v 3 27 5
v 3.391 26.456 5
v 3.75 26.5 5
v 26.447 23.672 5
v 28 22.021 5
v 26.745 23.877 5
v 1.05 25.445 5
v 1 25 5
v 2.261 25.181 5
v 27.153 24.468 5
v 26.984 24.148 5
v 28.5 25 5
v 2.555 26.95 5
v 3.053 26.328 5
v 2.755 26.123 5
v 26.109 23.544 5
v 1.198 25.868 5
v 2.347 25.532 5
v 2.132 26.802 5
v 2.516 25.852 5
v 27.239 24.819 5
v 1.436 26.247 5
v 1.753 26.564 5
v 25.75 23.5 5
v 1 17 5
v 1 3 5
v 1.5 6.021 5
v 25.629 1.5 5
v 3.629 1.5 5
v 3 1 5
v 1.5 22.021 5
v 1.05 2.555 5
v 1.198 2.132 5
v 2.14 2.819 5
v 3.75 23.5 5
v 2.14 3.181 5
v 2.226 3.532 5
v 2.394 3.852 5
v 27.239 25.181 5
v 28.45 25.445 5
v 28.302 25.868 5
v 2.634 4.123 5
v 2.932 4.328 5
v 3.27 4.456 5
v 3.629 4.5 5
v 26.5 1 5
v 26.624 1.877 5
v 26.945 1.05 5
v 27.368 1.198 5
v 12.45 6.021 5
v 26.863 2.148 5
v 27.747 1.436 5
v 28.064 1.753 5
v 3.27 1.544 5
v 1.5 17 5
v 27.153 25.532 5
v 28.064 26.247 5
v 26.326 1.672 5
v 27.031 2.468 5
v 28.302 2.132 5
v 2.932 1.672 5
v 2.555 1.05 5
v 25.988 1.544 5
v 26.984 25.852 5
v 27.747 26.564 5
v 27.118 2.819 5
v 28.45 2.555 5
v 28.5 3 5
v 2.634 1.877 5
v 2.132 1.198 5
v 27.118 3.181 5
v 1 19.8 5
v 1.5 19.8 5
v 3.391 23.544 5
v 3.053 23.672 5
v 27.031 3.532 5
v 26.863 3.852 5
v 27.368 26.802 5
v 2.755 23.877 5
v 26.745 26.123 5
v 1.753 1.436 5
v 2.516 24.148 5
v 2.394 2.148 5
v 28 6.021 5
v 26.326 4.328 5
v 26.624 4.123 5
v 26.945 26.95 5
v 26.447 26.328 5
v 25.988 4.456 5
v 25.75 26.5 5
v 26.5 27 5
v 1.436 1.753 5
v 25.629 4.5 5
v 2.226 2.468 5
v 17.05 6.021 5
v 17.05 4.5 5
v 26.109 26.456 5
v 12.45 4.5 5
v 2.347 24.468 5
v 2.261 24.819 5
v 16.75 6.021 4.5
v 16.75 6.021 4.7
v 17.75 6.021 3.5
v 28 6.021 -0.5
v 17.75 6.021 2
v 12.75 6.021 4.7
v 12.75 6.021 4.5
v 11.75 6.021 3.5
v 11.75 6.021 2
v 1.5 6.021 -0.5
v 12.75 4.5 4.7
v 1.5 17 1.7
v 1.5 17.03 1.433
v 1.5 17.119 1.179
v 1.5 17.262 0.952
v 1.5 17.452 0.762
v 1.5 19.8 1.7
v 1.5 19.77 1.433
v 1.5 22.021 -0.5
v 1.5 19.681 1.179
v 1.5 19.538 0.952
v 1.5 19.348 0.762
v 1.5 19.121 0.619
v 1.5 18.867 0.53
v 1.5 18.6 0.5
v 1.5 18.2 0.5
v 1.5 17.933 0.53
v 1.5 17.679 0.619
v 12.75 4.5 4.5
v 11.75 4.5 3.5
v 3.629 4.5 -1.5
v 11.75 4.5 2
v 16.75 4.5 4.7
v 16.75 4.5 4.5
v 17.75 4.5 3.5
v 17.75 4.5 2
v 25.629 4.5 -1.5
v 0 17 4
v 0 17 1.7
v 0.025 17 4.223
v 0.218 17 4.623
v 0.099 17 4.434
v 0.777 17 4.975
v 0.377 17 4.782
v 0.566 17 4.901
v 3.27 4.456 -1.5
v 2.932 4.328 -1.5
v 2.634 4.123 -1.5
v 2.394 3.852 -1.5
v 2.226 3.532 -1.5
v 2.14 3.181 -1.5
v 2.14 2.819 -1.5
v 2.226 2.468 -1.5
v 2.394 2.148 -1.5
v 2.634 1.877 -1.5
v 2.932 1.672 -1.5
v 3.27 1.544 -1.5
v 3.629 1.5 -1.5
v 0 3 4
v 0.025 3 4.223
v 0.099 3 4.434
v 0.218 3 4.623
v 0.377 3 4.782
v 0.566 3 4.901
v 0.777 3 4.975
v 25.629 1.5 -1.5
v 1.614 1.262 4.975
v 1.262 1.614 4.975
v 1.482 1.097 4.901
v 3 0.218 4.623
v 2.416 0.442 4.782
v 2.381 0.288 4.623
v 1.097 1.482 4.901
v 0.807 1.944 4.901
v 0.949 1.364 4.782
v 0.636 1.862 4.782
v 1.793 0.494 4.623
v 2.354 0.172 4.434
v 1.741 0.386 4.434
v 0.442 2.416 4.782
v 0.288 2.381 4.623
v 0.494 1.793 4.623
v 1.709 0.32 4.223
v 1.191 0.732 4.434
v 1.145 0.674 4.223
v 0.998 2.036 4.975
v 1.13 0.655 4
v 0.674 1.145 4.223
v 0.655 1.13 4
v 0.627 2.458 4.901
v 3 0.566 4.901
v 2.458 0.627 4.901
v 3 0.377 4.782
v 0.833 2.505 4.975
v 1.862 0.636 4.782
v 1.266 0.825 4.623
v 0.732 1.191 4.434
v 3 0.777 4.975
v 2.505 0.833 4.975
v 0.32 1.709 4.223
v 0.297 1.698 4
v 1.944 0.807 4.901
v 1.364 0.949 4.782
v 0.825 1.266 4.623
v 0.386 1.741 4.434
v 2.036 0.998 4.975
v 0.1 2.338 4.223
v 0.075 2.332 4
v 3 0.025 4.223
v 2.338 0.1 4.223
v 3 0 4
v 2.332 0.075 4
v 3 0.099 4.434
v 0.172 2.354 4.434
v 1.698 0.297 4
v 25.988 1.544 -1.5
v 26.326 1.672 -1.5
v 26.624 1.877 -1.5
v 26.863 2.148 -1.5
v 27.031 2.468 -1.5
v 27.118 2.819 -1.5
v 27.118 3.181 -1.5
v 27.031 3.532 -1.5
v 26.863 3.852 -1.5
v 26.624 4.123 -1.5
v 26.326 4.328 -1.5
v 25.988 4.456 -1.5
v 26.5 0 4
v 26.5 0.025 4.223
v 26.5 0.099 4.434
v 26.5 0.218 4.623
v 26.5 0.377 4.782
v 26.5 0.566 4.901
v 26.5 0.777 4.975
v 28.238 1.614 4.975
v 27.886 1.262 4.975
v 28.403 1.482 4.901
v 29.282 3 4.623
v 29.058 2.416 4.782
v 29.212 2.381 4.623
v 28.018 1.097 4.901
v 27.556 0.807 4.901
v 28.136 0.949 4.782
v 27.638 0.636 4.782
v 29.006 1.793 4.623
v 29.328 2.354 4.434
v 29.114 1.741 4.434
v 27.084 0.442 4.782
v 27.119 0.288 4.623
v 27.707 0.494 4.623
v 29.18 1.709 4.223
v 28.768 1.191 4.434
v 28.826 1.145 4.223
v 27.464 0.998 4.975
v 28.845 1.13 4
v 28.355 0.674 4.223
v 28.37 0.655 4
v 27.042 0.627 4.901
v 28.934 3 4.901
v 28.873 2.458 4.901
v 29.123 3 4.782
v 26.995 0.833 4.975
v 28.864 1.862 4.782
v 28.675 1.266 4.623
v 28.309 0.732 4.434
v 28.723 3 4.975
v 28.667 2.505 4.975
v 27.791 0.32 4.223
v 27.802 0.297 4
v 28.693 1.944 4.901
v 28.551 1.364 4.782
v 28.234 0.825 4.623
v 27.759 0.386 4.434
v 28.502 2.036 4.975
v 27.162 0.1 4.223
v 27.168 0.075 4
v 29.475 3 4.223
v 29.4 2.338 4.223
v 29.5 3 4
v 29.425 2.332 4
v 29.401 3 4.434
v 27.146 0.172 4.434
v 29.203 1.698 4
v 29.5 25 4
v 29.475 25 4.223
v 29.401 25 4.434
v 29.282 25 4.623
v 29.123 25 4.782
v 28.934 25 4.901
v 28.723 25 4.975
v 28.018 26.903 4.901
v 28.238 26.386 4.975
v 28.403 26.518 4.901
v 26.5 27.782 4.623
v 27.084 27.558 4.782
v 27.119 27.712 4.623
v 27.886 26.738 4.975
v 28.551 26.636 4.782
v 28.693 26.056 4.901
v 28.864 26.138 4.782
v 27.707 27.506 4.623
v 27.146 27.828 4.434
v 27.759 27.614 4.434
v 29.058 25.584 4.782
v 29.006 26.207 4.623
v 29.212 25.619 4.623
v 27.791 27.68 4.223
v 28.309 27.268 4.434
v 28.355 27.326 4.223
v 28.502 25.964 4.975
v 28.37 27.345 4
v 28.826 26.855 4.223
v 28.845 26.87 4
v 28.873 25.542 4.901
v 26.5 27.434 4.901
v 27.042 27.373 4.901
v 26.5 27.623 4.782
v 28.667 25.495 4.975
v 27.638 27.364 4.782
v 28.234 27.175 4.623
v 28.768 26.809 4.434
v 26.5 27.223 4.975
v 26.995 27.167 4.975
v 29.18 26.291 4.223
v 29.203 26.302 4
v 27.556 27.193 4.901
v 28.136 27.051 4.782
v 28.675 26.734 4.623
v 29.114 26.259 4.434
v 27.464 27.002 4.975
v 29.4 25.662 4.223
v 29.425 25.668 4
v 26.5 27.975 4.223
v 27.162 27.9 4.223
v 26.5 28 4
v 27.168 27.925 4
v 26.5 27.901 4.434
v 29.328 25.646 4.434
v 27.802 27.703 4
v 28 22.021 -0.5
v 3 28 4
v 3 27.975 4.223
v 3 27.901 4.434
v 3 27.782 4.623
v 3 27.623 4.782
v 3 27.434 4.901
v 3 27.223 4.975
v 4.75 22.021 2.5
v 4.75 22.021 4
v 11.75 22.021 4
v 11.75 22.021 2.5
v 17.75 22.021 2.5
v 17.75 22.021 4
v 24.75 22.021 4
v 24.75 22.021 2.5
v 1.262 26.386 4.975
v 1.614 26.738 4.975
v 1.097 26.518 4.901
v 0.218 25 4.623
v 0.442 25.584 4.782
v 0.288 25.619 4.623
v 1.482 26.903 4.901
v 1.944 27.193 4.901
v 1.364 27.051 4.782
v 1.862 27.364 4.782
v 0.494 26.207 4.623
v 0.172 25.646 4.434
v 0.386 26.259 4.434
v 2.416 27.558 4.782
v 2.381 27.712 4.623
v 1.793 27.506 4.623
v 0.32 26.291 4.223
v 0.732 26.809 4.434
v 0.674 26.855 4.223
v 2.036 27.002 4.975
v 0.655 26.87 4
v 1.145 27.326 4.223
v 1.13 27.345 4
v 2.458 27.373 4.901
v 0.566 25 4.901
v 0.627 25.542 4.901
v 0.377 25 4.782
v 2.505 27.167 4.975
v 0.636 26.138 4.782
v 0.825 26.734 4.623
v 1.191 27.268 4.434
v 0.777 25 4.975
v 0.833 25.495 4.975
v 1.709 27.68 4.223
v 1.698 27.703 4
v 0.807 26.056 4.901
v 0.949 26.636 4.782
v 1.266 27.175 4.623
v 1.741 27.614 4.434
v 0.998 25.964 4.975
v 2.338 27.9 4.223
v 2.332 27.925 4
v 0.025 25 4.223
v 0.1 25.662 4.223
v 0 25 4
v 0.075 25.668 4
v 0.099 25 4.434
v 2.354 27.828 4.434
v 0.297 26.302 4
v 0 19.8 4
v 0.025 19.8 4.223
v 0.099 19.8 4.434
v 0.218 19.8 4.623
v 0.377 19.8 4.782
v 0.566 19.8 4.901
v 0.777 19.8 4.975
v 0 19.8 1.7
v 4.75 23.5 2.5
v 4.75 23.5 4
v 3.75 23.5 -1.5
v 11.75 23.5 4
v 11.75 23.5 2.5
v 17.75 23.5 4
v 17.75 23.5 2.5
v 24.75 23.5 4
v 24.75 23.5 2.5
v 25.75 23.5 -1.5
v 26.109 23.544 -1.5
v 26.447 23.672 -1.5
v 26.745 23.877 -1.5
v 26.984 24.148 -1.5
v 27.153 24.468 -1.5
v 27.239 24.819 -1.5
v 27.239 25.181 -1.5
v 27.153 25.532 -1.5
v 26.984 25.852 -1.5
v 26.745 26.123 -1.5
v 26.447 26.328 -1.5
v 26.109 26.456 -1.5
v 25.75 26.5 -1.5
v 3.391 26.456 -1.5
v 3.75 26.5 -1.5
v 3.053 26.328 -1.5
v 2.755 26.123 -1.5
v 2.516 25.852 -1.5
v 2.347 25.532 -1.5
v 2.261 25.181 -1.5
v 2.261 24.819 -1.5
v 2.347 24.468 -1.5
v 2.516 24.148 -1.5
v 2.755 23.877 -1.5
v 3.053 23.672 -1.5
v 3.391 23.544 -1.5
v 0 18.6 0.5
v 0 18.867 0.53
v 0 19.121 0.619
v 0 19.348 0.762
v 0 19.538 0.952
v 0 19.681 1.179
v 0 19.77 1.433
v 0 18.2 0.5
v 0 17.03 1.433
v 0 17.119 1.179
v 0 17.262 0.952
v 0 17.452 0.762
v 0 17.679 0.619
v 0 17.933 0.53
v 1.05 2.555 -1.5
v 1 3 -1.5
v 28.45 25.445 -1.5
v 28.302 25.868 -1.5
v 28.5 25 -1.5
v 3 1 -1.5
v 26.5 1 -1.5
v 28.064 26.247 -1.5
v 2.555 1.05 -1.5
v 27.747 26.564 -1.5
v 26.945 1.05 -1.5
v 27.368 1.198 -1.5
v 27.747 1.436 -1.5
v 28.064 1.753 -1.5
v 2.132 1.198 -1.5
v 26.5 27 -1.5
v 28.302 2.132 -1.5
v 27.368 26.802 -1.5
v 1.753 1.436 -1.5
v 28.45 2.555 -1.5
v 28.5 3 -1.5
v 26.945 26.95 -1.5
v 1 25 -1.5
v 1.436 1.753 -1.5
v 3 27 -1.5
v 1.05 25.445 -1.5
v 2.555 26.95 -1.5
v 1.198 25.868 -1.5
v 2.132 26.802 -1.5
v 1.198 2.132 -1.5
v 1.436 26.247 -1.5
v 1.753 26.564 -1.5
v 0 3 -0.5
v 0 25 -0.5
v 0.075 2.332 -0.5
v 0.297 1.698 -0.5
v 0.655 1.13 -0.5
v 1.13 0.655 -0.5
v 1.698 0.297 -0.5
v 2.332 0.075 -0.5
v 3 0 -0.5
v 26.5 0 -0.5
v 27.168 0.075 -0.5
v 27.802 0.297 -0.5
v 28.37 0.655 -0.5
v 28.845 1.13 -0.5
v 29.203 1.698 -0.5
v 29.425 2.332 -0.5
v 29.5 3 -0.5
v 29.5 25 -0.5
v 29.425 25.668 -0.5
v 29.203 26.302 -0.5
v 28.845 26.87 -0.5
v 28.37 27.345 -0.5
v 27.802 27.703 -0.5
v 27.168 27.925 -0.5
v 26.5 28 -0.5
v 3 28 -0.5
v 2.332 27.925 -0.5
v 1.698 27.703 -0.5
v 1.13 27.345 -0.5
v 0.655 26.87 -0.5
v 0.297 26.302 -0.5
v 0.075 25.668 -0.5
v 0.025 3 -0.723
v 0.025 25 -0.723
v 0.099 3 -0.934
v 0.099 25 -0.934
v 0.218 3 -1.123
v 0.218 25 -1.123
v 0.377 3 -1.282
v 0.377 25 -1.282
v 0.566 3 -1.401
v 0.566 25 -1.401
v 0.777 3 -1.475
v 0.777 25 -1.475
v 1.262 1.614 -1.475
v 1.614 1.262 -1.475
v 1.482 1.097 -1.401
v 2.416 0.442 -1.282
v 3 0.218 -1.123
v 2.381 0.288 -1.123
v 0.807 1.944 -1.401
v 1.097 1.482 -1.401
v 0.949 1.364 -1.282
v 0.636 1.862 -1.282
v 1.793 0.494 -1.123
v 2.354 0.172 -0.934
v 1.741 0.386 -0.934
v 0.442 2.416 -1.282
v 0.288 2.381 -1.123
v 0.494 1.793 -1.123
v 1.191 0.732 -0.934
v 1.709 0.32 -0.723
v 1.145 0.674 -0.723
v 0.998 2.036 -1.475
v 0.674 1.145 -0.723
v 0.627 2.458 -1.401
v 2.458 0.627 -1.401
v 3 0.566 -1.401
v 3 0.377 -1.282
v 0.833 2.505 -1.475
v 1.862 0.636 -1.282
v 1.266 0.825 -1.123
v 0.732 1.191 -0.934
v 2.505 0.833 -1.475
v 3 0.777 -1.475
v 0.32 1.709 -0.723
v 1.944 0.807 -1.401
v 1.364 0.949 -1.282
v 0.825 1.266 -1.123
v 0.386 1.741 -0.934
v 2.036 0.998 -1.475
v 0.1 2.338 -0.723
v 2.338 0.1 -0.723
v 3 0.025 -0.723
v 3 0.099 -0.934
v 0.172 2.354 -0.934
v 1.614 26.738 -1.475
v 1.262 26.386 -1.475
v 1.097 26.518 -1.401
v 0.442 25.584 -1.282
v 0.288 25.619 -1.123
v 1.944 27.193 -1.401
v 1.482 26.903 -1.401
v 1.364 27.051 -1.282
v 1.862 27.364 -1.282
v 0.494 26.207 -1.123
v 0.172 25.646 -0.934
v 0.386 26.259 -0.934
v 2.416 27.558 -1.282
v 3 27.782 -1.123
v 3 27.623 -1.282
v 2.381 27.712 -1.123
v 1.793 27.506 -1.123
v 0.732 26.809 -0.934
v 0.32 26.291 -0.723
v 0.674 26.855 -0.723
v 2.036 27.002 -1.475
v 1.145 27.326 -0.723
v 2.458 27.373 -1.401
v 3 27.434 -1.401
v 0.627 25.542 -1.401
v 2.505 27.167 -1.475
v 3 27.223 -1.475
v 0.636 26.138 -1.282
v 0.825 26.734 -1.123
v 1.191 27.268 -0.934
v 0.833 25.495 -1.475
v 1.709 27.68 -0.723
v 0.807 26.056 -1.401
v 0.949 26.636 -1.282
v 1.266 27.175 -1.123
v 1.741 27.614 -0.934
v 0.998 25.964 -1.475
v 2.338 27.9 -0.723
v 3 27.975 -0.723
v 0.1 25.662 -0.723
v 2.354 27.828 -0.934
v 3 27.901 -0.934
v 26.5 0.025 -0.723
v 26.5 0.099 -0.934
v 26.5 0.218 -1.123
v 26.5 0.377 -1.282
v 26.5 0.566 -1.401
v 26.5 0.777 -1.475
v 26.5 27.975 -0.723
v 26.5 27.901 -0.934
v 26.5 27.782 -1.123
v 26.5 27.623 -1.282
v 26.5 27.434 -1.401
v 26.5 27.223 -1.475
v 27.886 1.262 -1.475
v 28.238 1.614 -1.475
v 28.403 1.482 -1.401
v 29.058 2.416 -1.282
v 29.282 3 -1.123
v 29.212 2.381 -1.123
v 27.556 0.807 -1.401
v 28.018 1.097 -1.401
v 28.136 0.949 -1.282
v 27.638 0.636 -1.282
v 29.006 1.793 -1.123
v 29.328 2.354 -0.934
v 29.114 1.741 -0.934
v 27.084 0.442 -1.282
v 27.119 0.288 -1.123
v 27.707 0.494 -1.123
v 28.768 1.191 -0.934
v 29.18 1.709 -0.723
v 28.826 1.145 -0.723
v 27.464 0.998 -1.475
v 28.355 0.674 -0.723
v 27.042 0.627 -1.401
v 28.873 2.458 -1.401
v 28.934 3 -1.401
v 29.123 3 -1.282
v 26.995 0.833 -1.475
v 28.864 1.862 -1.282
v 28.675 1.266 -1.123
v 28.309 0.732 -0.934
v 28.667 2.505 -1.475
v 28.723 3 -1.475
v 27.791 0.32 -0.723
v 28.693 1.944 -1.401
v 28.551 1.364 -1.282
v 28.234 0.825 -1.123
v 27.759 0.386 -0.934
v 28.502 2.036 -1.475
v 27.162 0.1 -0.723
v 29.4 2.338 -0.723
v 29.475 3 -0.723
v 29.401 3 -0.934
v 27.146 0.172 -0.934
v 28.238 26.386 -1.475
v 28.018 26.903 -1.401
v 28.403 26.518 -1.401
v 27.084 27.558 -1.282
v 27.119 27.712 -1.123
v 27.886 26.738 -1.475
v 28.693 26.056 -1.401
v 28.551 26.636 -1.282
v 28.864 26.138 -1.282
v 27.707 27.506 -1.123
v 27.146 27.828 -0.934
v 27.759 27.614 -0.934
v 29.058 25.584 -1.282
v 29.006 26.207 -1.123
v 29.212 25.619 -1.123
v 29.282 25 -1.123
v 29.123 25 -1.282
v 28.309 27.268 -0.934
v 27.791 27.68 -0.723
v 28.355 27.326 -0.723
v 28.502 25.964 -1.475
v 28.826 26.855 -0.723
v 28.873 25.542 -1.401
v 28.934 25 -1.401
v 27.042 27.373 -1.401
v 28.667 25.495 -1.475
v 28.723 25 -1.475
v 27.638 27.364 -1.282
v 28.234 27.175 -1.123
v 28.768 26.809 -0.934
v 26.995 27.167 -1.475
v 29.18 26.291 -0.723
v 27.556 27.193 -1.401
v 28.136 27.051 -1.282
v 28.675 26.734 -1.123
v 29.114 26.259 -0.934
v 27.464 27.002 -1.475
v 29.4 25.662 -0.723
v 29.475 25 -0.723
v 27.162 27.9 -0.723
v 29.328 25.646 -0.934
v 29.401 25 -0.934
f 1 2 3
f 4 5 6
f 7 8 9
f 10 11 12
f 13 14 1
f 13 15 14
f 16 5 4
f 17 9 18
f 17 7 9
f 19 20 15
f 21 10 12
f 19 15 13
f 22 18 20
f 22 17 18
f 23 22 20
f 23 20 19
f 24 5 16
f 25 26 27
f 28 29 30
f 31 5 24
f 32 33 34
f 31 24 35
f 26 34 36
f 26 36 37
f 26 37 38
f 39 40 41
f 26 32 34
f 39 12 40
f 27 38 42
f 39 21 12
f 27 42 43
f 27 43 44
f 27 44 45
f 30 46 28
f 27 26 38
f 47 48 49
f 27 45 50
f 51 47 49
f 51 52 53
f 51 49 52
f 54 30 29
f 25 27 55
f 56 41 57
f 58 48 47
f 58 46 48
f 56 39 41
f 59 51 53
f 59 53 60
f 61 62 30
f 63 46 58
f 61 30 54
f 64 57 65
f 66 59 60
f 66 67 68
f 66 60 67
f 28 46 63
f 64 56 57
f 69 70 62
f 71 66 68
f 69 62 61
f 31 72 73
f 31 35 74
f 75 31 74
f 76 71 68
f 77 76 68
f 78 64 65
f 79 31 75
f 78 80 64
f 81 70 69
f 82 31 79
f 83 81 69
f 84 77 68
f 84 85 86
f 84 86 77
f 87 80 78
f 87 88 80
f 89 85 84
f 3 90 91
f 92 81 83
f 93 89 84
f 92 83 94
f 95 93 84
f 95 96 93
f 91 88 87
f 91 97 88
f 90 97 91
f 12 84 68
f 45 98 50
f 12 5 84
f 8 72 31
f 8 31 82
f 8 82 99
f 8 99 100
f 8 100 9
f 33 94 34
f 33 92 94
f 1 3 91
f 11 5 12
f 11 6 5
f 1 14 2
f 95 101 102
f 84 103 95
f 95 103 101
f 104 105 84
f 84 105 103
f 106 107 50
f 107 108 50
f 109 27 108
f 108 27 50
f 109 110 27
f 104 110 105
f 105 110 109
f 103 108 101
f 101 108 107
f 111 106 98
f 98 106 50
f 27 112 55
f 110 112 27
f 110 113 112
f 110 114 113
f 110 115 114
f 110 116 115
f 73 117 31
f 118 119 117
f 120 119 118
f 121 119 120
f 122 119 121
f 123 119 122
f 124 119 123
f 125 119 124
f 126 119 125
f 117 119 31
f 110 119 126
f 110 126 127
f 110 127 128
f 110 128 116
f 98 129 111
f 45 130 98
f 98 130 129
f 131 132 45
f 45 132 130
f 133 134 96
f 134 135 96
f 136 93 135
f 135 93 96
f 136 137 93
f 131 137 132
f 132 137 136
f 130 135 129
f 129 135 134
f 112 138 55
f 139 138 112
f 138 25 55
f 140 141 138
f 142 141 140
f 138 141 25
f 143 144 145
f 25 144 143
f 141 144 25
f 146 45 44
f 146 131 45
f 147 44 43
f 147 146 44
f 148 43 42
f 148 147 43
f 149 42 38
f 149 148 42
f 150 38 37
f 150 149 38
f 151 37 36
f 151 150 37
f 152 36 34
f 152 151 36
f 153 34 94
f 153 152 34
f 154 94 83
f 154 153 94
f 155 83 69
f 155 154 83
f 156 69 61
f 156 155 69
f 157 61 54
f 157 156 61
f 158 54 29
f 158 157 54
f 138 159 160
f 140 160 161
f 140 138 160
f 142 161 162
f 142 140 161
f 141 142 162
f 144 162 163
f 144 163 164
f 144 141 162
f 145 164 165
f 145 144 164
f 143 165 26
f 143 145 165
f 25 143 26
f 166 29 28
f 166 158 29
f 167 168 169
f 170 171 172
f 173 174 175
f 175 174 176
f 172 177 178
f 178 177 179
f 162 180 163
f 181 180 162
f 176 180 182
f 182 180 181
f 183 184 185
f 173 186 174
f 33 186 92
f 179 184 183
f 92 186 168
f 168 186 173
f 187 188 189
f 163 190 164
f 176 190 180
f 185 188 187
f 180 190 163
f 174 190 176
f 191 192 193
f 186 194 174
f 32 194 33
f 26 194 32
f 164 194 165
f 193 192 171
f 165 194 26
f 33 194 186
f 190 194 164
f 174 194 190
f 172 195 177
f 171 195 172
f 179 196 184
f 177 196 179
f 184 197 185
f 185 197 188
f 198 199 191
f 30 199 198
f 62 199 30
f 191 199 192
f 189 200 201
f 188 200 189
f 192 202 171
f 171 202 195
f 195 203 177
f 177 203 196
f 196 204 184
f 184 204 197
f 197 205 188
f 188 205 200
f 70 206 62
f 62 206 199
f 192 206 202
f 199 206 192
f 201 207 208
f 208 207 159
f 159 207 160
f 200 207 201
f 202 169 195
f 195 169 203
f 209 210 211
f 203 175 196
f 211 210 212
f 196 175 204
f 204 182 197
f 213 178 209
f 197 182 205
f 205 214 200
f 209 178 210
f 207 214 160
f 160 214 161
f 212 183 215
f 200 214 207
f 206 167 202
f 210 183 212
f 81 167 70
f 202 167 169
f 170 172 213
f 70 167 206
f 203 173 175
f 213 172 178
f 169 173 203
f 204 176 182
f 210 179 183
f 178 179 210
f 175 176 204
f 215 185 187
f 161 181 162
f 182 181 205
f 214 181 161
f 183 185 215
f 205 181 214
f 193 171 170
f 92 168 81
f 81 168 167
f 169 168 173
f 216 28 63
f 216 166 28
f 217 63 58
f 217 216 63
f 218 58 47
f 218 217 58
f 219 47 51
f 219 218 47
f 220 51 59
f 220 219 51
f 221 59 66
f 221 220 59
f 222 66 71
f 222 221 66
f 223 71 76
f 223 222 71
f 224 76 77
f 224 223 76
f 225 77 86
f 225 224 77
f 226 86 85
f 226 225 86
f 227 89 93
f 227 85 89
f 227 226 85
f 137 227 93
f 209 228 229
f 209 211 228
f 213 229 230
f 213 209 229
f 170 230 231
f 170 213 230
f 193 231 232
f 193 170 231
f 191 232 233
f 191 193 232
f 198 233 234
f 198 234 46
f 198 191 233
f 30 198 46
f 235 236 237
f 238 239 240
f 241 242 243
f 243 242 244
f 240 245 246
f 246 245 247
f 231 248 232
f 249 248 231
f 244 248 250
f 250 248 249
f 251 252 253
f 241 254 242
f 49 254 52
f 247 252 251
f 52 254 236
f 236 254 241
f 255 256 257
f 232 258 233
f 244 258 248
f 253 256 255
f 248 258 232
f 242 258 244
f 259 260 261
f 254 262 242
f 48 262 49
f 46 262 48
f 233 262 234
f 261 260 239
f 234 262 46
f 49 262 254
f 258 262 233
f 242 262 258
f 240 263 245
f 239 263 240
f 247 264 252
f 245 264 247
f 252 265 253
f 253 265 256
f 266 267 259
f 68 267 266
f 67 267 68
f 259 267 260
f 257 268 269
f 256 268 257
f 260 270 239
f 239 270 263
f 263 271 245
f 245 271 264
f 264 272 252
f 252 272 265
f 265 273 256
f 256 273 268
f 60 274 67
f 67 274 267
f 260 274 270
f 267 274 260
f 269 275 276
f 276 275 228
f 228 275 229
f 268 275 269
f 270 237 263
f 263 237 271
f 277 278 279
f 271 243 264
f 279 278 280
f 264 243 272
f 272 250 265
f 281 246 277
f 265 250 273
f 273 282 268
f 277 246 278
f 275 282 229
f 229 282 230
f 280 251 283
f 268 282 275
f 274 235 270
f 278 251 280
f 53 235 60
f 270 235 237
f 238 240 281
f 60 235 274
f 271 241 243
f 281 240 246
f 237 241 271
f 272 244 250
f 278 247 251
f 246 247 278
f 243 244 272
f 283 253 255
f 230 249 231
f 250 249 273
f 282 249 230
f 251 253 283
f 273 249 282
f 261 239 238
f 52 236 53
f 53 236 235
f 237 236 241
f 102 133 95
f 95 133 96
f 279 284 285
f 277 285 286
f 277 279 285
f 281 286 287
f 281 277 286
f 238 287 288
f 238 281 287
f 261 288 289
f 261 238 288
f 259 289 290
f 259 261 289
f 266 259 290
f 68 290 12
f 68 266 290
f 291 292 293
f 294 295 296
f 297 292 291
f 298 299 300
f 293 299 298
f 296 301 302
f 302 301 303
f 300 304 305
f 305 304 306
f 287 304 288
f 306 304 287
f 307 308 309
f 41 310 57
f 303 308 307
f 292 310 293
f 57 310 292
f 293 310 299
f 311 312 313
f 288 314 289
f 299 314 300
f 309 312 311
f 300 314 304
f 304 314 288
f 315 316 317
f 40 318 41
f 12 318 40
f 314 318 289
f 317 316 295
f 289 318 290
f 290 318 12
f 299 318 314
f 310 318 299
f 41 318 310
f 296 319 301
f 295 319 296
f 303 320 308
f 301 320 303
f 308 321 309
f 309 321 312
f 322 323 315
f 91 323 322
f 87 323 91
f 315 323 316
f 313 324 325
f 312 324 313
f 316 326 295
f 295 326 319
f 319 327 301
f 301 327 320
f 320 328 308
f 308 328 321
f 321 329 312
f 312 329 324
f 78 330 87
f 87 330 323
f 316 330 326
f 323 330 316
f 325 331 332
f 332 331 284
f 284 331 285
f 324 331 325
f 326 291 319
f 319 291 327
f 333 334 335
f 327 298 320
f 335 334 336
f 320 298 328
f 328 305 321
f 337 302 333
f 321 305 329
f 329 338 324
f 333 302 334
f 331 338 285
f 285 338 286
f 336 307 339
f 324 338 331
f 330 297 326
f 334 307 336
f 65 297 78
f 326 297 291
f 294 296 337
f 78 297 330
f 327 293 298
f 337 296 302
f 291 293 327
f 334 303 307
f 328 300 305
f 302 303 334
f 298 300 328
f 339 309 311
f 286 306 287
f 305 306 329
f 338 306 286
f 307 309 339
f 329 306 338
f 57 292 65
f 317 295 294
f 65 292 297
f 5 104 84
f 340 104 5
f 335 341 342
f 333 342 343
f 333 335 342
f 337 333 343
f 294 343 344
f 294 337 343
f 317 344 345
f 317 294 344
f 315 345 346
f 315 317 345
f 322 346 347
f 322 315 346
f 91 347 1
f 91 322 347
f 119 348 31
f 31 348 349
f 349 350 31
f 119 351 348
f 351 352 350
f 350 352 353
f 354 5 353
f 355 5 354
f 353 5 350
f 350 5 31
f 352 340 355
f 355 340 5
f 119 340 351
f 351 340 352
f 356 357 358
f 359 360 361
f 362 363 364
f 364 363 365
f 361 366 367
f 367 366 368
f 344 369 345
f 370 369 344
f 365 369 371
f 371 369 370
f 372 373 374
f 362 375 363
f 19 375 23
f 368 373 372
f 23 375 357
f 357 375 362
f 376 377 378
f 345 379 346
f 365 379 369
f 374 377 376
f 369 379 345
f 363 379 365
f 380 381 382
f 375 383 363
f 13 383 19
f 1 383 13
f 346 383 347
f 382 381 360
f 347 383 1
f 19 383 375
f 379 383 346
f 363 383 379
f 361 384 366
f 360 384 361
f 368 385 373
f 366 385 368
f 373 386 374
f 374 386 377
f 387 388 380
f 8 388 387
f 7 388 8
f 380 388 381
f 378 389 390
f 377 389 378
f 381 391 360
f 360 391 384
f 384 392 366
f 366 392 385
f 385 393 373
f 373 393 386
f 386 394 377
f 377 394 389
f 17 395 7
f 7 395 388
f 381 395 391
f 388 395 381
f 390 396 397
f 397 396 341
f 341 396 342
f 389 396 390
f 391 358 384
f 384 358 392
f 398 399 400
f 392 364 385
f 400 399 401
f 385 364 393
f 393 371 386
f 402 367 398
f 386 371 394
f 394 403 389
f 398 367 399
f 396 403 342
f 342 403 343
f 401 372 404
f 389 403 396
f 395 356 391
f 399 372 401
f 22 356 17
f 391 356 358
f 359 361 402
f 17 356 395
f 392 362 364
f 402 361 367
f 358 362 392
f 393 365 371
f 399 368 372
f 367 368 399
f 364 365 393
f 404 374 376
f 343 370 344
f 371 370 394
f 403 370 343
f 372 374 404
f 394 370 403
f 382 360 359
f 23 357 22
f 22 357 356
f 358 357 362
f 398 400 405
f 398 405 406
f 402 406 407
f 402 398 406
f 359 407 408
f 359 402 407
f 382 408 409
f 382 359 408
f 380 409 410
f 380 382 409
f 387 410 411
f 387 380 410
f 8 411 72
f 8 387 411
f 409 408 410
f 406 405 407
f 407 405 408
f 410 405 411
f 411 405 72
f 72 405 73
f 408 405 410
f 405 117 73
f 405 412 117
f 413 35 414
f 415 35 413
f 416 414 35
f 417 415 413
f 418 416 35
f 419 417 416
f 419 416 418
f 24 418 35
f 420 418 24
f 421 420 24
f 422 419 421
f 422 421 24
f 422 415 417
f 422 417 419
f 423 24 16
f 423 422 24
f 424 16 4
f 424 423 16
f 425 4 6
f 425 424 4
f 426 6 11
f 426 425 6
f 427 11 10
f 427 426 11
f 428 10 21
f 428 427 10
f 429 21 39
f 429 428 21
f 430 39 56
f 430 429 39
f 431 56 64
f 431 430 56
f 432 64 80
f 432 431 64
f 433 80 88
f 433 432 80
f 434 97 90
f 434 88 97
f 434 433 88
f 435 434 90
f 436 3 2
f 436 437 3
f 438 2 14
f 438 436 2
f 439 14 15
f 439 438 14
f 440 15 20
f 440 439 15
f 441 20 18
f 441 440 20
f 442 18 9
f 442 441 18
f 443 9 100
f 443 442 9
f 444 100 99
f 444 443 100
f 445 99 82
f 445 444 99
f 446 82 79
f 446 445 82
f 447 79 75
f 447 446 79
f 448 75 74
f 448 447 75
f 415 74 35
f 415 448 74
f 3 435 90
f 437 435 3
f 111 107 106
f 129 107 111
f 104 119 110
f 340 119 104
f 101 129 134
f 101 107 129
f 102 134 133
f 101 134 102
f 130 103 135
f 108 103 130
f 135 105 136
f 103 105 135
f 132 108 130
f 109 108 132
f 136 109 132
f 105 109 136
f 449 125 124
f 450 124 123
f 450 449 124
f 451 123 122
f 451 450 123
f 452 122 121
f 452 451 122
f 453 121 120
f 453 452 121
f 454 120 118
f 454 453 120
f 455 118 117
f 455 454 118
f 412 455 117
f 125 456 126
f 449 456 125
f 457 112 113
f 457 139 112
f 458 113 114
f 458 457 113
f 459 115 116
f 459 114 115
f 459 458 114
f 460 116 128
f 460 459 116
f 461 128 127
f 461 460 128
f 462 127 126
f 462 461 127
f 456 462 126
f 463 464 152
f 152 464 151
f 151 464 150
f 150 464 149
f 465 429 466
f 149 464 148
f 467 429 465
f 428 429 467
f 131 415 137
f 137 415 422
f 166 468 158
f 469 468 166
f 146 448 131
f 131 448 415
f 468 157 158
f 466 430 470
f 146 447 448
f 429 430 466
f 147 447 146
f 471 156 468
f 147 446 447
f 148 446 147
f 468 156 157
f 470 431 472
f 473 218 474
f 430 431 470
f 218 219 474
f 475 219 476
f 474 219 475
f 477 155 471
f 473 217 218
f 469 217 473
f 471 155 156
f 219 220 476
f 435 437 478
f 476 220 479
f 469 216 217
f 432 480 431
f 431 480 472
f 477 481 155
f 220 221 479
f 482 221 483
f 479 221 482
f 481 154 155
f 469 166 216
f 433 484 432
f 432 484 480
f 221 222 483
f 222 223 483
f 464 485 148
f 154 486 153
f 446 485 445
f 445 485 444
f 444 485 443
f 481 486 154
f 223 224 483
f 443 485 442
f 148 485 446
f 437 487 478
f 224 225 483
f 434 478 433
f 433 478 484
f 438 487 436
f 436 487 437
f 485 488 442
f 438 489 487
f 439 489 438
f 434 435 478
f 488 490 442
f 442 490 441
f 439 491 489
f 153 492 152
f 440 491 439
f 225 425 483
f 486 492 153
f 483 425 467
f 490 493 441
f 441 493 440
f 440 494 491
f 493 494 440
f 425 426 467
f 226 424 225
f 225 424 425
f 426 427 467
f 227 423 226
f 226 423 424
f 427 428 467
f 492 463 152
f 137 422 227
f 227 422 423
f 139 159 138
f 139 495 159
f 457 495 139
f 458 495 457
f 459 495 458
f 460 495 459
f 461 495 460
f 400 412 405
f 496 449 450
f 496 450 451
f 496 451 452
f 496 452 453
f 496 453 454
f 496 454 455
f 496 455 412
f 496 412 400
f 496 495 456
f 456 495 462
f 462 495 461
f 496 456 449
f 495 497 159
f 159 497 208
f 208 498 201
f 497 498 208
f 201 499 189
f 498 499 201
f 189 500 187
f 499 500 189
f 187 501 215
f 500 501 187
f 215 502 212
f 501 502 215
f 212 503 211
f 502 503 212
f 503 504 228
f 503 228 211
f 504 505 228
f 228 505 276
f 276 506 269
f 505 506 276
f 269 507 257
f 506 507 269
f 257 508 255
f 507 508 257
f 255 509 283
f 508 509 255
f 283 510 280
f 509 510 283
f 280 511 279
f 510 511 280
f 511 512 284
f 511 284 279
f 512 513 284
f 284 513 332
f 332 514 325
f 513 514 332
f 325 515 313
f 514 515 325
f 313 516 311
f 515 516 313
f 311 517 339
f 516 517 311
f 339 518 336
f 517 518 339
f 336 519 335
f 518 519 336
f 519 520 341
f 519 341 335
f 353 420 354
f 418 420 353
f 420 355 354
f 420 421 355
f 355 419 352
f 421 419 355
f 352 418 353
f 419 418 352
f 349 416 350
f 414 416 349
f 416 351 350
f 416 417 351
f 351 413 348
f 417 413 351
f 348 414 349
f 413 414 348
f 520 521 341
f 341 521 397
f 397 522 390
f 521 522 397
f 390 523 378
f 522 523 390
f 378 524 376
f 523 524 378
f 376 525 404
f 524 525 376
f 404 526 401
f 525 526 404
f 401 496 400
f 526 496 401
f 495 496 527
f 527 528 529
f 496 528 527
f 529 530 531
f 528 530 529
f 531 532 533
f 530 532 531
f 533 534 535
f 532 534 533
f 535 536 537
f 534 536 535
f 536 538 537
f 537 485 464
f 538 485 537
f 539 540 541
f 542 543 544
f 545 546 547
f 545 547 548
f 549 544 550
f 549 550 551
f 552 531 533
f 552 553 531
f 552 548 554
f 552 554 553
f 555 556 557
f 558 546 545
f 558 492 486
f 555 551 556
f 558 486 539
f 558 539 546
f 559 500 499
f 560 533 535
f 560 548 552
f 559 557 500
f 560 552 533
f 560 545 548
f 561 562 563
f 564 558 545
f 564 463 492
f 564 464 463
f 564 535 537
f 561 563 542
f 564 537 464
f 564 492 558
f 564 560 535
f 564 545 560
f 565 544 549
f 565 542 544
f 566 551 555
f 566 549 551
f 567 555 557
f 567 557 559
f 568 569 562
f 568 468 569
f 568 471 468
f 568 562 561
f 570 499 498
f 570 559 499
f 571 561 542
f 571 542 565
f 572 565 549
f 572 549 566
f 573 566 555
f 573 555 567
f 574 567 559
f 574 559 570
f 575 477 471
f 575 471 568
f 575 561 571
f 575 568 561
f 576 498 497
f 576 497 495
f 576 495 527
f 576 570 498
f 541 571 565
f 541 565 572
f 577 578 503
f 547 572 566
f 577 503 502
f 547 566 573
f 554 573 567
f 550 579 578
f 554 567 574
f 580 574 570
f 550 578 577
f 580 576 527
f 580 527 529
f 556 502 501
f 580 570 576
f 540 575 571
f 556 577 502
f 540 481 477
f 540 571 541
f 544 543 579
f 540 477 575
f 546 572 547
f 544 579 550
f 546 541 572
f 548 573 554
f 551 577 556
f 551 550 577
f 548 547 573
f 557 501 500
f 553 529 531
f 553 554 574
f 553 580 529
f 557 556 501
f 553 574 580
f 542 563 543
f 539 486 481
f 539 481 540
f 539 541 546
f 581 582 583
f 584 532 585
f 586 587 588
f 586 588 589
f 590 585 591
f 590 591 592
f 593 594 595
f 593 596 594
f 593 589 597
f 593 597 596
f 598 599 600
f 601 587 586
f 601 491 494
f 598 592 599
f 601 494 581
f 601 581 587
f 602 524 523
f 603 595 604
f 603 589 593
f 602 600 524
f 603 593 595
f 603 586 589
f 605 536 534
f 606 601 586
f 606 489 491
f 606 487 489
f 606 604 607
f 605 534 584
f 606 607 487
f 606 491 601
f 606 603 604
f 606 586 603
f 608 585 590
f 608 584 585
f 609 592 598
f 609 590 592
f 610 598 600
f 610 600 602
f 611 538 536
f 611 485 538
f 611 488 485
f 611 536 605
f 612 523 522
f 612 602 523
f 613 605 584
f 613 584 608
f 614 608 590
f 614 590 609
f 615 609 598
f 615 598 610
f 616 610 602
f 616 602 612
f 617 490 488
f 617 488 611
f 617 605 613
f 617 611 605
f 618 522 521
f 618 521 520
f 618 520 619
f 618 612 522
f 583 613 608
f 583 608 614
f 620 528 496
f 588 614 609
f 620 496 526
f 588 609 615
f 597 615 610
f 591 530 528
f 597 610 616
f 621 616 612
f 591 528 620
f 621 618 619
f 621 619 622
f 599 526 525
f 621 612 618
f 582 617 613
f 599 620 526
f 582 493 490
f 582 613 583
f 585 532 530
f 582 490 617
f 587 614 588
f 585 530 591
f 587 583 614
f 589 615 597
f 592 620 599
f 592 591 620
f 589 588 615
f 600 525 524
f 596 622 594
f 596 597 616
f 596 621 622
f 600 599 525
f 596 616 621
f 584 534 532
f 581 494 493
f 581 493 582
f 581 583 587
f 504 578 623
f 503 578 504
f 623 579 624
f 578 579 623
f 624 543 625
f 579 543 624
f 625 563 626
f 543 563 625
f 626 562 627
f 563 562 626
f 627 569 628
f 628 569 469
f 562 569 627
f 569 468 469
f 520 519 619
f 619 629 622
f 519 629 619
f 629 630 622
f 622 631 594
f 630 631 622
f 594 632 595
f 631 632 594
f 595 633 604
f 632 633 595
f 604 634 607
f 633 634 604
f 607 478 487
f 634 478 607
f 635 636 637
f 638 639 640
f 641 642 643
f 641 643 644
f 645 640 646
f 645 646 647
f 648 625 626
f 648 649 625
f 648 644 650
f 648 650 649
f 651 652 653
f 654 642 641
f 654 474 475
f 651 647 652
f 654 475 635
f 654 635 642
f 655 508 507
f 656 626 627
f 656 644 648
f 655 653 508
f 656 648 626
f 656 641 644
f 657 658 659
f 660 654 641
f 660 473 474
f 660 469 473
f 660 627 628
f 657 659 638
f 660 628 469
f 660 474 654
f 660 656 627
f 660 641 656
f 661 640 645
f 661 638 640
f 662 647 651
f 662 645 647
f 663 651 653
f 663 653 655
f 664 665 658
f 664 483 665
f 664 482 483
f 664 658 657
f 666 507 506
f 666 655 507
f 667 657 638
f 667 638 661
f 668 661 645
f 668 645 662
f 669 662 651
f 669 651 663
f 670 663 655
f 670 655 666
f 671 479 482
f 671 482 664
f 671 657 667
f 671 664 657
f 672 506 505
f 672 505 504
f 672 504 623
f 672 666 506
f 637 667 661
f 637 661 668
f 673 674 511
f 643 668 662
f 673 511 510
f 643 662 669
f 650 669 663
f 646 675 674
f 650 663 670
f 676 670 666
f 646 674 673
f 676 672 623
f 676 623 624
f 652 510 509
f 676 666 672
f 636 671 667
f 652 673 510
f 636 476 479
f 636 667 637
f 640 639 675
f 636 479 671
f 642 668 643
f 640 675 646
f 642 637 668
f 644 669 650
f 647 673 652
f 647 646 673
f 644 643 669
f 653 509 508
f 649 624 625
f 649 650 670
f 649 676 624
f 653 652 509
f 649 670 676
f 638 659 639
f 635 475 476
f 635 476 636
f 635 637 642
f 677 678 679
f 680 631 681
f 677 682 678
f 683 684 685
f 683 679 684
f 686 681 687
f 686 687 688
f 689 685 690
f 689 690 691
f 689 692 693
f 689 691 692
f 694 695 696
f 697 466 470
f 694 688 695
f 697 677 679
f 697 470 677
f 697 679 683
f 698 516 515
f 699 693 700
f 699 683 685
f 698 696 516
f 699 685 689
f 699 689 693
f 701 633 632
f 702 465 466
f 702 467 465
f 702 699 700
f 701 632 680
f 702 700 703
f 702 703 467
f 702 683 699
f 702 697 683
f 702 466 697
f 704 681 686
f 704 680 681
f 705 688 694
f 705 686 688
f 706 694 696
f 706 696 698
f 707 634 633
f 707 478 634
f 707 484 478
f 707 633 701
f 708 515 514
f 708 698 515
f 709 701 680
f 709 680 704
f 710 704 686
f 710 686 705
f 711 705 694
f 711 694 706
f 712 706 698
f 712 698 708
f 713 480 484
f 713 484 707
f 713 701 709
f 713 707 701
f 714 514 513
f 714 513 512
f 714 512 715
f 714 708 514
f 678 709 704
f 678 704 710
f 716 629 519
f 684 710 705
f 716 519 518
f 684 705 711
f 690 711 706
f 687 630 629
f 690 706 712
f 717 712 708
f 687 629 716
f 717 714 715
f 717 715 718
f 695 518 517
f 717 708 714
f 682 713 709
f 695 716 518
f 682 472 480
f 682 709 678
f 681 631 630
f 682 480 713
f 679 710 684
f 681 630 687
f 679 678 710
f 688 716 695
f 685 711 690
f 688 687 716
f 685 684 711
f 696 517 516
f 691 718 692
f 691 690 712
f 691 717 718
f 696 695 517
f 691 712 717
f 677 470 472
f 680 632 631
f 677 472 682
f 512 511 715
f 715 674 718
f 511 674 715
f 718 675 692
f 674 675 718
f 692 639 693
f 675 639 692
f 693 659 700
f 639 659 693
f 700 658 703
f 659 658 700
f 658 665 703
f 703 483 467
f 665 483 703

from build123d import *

# Parameters (mm, degrees)
EXTRUDE007_START                     = 4.5
SKETCH007_W                          = 4
SKETCH007_H                          = 3
EXTRUDE007_DEPTH                     = 0.5
EXTRUDE006_START                     = -4
SKETCH006_AS_DRAWN_W                 = 6
SKETCH006_AS_DRAWN_H                 = 1.5
EXTRUDE006_DEPTH                     = 4
EXTRUDE006_ONTO_SKETCH006_ROLL_ANGLE = 90
EXTRUDE005_DEPTH                     = 2
EXTRUDE003_START                     = -15
SKETCH003_AS_DRAWN_W                 = 7
SKETCH003_AS_DRAWN_H                 = 1.5
EXTRUDE003_DEPTH                     = 10
EXTRUDE003_ONTO_SKETCH003_ROLL_ANGLE = 90
EXTRUDE002_DEPTH                     = 6
EXTRUDE002_DEPTH_BACK                = 2
SKETCH_W                             = 26.5
SKETCH_H                             = 16
EXTRUDE001_DEPTH                     = 6
EXTRUDE001_DEPTH_BACK                = 0.5
EXTRUDE_DEPTH                        = 5
EXTRUDE_DEPTH_BACK                   = 1.5
FILLET_R                             = 1
CHAMFER_SIZE                         = 0.3


with BuildPart() as extrude007:
    # Sketch007 (on Cut) → Extrude007 (new body)
    with BuildSketch(Plane.XY.offset(EXTRUDE007_START)):
        with Locations((14.75, 5.419451)):
            Rectangle(SKETCH007_W, SKETCH007_H)
    extrude(amount=EXTRUDE007_DEPTH)


with BuildPart() as extrude006:
    # Sketch006 as drawn → Extrude006 (new)
    with BuildSketch(Plane.XY.offset(EXTRUDE006_START)):
        with Locations((14.75, 2.75)):
            Rectangle(SKETCH006_AS_DRAWN_W, SKETCH006_AS_DRAWN_H)
    extrude(amount=-EXTRUDE006_DEPTH)


with BuildPart() as extrude006_1:
    # Extrude006 onto Sketch006 roll: moved
    add(extrude006.part.rotate(Axis((0, 0, 0), (1, 0, 0)), EXTRUDE006_ONTO_SKETCH006_ROLL_ANGLE))


with BuildPart() as extrude006_2:
    # Extrude006 onto Sketch006 placement: moved
    add(extrude006_1.part)


with BuildPart() as extrude005:
    # Sketch005 → Extrude005 (new body)
    with BuildSketch(Plane.YZ):
        with BuildLine():
            Line((17, 5), (19.8, 5))
            Line((19.8, 5), (19.8, 1.7))
            ThreePointArc((18.6, 0.5), (19.448528, 0.851472), (19.8, 1.7))
            Line((18.6, 0.5), (18.2, 0.5))
            ThreePointArc((17, 1.7), (17.351472, 0.851472), (18.2, 0.5))
            Line((17, 1.7), (17, 5))
        make_face()
    extrude(amount=EXTRUDE005_DEPTH)


with BuildPart() as extrude003:
    # Sketch003 as drawn → Extrude003 (new)
    with BuildSketch(Plane.XY.offset(EXTRUDE003_START)):
        with Locations((8.25, 3.25)):
            Rectangle(SKETCH003_AS_DRAWN_W, SKETCH003_AS_DRAWN_H)
        with Locations((21.25, 3.25)):
            Rectangle(SKETCH003_AS_DRAWN_W, SKETCH003_AS_DRAWN_H)
    extrude(amount=-EXTRUDE003_DEPTH)


with BuildPart() as extrude003_1:
    # Extrude003 onto Sketch003 roll: moved
    add(extrude003.part.rotate(Axis((0, 0, 0), (1, 0, 0)), EXTRUDE003_ONTO_SKETCH003_ROLL_ANGLE))


with BuildPart() as extrude003_2:
    # Extrude003 onto Sketch003 placement: moved
    add(extrude003_1.part)


with BuildPart() as extrude002:
    # Sketch002 → Extrude002 (new body, two sides)
    with BuildSketch(Plane.XY) as extrude002_sk:
        with BuildLine():
            ThreePointArc((3.75, 26.5), (2.25, 25), (3.75, 23.5))
            Line((3.75, 23.5), (25.75, 23.5))
            ThreePointArc((25.75, 23.5), (27.25, 25), (25.75, 26.5))
            Line((3.75, 26.5), (25.75, 26.5))
        make_face()
        with BuildLine():
            ThreePointArc((3.628907, 4.5), (2.128907, 3), (3.628907, 1.5))
            Line((3.628907, 1.5), (25.628907, 1.5))
            ThreePointArc((25.628907, 1.5), (27.128907, 3), (25.628907, 4.5))
            Line((3.628907, 4.5), (25.628907, 4.5))
        make_face()
    extrude(amount=EXTRUDE002_DEPTH)
    extrude(extrude002_sk.sketch, amount=-EXTRUDE002_DEPTH_BACK)


with BuildPart() as extrude001:
    # Sketch → Extrude001 (new body, two sides)
    with BuildSketch(Plane.XY) as extrude001_sk:
        with Locations((14.75, 14.020797)):
            Rectangle(SKETCH_W, SKETCH_H)
    extrude(amount=EXTRUDE001_DEPTH)
    extrude(extrude001_sk.sketch, amount=-EXTRUDE001_DEPTH_BACK)


with BuildPart() as chamfer_body:
    # Sketch001 (on Sketch) → Extrude (new body, two sides)
    with BuildSketch(Plane.XY) as extrude_sk:
        with BuildLine():
            Line((3, 28), (26.5, 28))
            ThreePointArc((29.5, 25), (28.62132, 27.12132), (26.5, 28))
            Line((29.5, 25), (29.5, 3))
            ThreePointArc((26.5, 0), (28.62132, 0.87868), (29.5, 3))
            Line((26.5, 0), (3, 0))
            ThreePointArc((0, 3), (0.87868, 0.87868), (3, 0))
            Line((0, 3), (0, 25))
            ThreePointArc((3, 28), (0.87868, 27.12132), (0, 25))
        make_face()
    extrude(amount=EXTRUDE_DEPTH)
    extrude(extrude_sk.sketch, amount=-EXTRUDE_DEPTH_BACK)

    # Cut: cut Extrude001
    add(extrude001.part, mode=Mode.SUBTRACT)

    # Cut001: cut Extrude002
    add(extrude002.part, mode=Mode.SUBTRACT)

    # Cut002: cut Extrude003
    add(extrude003_2.part, mode=Mode.SUBTRACT)

    # Fillet
    fillet_edges = [chamfer_body.edges().sort_by_distance(p)[0] for p in [
        (0, 14, -1.5),
        (0, 14, 5),
        (0.87868, 0.87868, -1.5),
        (0.87868, 0.87868, 5),
        (0.87868, 27.12132, -1.5),
        (14.75, 0, -1.5),
        (14.75, 28, -1.5),
        (28.62132, 0.87868, -1.5),
        (28.62132, 27.12132, -1.5),
        (29.5, 14, -1.5),
        (14.75, 0, 5),
        (14.75, 28, 5),
        (28.62132, 0.87868, 5),
        (28.62132, 27.12132, 5),
        (29.5, 14, 5),
    ]]
    fillet(fillet_edges, radius=FILLET_R)

    # Cut004: cut Extrude005
    add(extrude005.part, mode=Mode.SUBTRACT)

    # Cut005: cut Extrude006
    add(extrude006_2.part, mode=Mode.SUBTRACT)

    # Cut006: cut Extrude007
    add(extrude007.part, mode=Mode.SUBTRACT)

    # Chamfer
    chamfer_edges = [chamfer_body.edges().sort_by_distance(p)[0] for p in [
        (12.75, 5.260399, 5),
        (16.75, 5.260399, 5),
    ]]
    chamfer(chamfer_edges, length=CHAMFER_SIZE)


solid = chamfer_body.part
